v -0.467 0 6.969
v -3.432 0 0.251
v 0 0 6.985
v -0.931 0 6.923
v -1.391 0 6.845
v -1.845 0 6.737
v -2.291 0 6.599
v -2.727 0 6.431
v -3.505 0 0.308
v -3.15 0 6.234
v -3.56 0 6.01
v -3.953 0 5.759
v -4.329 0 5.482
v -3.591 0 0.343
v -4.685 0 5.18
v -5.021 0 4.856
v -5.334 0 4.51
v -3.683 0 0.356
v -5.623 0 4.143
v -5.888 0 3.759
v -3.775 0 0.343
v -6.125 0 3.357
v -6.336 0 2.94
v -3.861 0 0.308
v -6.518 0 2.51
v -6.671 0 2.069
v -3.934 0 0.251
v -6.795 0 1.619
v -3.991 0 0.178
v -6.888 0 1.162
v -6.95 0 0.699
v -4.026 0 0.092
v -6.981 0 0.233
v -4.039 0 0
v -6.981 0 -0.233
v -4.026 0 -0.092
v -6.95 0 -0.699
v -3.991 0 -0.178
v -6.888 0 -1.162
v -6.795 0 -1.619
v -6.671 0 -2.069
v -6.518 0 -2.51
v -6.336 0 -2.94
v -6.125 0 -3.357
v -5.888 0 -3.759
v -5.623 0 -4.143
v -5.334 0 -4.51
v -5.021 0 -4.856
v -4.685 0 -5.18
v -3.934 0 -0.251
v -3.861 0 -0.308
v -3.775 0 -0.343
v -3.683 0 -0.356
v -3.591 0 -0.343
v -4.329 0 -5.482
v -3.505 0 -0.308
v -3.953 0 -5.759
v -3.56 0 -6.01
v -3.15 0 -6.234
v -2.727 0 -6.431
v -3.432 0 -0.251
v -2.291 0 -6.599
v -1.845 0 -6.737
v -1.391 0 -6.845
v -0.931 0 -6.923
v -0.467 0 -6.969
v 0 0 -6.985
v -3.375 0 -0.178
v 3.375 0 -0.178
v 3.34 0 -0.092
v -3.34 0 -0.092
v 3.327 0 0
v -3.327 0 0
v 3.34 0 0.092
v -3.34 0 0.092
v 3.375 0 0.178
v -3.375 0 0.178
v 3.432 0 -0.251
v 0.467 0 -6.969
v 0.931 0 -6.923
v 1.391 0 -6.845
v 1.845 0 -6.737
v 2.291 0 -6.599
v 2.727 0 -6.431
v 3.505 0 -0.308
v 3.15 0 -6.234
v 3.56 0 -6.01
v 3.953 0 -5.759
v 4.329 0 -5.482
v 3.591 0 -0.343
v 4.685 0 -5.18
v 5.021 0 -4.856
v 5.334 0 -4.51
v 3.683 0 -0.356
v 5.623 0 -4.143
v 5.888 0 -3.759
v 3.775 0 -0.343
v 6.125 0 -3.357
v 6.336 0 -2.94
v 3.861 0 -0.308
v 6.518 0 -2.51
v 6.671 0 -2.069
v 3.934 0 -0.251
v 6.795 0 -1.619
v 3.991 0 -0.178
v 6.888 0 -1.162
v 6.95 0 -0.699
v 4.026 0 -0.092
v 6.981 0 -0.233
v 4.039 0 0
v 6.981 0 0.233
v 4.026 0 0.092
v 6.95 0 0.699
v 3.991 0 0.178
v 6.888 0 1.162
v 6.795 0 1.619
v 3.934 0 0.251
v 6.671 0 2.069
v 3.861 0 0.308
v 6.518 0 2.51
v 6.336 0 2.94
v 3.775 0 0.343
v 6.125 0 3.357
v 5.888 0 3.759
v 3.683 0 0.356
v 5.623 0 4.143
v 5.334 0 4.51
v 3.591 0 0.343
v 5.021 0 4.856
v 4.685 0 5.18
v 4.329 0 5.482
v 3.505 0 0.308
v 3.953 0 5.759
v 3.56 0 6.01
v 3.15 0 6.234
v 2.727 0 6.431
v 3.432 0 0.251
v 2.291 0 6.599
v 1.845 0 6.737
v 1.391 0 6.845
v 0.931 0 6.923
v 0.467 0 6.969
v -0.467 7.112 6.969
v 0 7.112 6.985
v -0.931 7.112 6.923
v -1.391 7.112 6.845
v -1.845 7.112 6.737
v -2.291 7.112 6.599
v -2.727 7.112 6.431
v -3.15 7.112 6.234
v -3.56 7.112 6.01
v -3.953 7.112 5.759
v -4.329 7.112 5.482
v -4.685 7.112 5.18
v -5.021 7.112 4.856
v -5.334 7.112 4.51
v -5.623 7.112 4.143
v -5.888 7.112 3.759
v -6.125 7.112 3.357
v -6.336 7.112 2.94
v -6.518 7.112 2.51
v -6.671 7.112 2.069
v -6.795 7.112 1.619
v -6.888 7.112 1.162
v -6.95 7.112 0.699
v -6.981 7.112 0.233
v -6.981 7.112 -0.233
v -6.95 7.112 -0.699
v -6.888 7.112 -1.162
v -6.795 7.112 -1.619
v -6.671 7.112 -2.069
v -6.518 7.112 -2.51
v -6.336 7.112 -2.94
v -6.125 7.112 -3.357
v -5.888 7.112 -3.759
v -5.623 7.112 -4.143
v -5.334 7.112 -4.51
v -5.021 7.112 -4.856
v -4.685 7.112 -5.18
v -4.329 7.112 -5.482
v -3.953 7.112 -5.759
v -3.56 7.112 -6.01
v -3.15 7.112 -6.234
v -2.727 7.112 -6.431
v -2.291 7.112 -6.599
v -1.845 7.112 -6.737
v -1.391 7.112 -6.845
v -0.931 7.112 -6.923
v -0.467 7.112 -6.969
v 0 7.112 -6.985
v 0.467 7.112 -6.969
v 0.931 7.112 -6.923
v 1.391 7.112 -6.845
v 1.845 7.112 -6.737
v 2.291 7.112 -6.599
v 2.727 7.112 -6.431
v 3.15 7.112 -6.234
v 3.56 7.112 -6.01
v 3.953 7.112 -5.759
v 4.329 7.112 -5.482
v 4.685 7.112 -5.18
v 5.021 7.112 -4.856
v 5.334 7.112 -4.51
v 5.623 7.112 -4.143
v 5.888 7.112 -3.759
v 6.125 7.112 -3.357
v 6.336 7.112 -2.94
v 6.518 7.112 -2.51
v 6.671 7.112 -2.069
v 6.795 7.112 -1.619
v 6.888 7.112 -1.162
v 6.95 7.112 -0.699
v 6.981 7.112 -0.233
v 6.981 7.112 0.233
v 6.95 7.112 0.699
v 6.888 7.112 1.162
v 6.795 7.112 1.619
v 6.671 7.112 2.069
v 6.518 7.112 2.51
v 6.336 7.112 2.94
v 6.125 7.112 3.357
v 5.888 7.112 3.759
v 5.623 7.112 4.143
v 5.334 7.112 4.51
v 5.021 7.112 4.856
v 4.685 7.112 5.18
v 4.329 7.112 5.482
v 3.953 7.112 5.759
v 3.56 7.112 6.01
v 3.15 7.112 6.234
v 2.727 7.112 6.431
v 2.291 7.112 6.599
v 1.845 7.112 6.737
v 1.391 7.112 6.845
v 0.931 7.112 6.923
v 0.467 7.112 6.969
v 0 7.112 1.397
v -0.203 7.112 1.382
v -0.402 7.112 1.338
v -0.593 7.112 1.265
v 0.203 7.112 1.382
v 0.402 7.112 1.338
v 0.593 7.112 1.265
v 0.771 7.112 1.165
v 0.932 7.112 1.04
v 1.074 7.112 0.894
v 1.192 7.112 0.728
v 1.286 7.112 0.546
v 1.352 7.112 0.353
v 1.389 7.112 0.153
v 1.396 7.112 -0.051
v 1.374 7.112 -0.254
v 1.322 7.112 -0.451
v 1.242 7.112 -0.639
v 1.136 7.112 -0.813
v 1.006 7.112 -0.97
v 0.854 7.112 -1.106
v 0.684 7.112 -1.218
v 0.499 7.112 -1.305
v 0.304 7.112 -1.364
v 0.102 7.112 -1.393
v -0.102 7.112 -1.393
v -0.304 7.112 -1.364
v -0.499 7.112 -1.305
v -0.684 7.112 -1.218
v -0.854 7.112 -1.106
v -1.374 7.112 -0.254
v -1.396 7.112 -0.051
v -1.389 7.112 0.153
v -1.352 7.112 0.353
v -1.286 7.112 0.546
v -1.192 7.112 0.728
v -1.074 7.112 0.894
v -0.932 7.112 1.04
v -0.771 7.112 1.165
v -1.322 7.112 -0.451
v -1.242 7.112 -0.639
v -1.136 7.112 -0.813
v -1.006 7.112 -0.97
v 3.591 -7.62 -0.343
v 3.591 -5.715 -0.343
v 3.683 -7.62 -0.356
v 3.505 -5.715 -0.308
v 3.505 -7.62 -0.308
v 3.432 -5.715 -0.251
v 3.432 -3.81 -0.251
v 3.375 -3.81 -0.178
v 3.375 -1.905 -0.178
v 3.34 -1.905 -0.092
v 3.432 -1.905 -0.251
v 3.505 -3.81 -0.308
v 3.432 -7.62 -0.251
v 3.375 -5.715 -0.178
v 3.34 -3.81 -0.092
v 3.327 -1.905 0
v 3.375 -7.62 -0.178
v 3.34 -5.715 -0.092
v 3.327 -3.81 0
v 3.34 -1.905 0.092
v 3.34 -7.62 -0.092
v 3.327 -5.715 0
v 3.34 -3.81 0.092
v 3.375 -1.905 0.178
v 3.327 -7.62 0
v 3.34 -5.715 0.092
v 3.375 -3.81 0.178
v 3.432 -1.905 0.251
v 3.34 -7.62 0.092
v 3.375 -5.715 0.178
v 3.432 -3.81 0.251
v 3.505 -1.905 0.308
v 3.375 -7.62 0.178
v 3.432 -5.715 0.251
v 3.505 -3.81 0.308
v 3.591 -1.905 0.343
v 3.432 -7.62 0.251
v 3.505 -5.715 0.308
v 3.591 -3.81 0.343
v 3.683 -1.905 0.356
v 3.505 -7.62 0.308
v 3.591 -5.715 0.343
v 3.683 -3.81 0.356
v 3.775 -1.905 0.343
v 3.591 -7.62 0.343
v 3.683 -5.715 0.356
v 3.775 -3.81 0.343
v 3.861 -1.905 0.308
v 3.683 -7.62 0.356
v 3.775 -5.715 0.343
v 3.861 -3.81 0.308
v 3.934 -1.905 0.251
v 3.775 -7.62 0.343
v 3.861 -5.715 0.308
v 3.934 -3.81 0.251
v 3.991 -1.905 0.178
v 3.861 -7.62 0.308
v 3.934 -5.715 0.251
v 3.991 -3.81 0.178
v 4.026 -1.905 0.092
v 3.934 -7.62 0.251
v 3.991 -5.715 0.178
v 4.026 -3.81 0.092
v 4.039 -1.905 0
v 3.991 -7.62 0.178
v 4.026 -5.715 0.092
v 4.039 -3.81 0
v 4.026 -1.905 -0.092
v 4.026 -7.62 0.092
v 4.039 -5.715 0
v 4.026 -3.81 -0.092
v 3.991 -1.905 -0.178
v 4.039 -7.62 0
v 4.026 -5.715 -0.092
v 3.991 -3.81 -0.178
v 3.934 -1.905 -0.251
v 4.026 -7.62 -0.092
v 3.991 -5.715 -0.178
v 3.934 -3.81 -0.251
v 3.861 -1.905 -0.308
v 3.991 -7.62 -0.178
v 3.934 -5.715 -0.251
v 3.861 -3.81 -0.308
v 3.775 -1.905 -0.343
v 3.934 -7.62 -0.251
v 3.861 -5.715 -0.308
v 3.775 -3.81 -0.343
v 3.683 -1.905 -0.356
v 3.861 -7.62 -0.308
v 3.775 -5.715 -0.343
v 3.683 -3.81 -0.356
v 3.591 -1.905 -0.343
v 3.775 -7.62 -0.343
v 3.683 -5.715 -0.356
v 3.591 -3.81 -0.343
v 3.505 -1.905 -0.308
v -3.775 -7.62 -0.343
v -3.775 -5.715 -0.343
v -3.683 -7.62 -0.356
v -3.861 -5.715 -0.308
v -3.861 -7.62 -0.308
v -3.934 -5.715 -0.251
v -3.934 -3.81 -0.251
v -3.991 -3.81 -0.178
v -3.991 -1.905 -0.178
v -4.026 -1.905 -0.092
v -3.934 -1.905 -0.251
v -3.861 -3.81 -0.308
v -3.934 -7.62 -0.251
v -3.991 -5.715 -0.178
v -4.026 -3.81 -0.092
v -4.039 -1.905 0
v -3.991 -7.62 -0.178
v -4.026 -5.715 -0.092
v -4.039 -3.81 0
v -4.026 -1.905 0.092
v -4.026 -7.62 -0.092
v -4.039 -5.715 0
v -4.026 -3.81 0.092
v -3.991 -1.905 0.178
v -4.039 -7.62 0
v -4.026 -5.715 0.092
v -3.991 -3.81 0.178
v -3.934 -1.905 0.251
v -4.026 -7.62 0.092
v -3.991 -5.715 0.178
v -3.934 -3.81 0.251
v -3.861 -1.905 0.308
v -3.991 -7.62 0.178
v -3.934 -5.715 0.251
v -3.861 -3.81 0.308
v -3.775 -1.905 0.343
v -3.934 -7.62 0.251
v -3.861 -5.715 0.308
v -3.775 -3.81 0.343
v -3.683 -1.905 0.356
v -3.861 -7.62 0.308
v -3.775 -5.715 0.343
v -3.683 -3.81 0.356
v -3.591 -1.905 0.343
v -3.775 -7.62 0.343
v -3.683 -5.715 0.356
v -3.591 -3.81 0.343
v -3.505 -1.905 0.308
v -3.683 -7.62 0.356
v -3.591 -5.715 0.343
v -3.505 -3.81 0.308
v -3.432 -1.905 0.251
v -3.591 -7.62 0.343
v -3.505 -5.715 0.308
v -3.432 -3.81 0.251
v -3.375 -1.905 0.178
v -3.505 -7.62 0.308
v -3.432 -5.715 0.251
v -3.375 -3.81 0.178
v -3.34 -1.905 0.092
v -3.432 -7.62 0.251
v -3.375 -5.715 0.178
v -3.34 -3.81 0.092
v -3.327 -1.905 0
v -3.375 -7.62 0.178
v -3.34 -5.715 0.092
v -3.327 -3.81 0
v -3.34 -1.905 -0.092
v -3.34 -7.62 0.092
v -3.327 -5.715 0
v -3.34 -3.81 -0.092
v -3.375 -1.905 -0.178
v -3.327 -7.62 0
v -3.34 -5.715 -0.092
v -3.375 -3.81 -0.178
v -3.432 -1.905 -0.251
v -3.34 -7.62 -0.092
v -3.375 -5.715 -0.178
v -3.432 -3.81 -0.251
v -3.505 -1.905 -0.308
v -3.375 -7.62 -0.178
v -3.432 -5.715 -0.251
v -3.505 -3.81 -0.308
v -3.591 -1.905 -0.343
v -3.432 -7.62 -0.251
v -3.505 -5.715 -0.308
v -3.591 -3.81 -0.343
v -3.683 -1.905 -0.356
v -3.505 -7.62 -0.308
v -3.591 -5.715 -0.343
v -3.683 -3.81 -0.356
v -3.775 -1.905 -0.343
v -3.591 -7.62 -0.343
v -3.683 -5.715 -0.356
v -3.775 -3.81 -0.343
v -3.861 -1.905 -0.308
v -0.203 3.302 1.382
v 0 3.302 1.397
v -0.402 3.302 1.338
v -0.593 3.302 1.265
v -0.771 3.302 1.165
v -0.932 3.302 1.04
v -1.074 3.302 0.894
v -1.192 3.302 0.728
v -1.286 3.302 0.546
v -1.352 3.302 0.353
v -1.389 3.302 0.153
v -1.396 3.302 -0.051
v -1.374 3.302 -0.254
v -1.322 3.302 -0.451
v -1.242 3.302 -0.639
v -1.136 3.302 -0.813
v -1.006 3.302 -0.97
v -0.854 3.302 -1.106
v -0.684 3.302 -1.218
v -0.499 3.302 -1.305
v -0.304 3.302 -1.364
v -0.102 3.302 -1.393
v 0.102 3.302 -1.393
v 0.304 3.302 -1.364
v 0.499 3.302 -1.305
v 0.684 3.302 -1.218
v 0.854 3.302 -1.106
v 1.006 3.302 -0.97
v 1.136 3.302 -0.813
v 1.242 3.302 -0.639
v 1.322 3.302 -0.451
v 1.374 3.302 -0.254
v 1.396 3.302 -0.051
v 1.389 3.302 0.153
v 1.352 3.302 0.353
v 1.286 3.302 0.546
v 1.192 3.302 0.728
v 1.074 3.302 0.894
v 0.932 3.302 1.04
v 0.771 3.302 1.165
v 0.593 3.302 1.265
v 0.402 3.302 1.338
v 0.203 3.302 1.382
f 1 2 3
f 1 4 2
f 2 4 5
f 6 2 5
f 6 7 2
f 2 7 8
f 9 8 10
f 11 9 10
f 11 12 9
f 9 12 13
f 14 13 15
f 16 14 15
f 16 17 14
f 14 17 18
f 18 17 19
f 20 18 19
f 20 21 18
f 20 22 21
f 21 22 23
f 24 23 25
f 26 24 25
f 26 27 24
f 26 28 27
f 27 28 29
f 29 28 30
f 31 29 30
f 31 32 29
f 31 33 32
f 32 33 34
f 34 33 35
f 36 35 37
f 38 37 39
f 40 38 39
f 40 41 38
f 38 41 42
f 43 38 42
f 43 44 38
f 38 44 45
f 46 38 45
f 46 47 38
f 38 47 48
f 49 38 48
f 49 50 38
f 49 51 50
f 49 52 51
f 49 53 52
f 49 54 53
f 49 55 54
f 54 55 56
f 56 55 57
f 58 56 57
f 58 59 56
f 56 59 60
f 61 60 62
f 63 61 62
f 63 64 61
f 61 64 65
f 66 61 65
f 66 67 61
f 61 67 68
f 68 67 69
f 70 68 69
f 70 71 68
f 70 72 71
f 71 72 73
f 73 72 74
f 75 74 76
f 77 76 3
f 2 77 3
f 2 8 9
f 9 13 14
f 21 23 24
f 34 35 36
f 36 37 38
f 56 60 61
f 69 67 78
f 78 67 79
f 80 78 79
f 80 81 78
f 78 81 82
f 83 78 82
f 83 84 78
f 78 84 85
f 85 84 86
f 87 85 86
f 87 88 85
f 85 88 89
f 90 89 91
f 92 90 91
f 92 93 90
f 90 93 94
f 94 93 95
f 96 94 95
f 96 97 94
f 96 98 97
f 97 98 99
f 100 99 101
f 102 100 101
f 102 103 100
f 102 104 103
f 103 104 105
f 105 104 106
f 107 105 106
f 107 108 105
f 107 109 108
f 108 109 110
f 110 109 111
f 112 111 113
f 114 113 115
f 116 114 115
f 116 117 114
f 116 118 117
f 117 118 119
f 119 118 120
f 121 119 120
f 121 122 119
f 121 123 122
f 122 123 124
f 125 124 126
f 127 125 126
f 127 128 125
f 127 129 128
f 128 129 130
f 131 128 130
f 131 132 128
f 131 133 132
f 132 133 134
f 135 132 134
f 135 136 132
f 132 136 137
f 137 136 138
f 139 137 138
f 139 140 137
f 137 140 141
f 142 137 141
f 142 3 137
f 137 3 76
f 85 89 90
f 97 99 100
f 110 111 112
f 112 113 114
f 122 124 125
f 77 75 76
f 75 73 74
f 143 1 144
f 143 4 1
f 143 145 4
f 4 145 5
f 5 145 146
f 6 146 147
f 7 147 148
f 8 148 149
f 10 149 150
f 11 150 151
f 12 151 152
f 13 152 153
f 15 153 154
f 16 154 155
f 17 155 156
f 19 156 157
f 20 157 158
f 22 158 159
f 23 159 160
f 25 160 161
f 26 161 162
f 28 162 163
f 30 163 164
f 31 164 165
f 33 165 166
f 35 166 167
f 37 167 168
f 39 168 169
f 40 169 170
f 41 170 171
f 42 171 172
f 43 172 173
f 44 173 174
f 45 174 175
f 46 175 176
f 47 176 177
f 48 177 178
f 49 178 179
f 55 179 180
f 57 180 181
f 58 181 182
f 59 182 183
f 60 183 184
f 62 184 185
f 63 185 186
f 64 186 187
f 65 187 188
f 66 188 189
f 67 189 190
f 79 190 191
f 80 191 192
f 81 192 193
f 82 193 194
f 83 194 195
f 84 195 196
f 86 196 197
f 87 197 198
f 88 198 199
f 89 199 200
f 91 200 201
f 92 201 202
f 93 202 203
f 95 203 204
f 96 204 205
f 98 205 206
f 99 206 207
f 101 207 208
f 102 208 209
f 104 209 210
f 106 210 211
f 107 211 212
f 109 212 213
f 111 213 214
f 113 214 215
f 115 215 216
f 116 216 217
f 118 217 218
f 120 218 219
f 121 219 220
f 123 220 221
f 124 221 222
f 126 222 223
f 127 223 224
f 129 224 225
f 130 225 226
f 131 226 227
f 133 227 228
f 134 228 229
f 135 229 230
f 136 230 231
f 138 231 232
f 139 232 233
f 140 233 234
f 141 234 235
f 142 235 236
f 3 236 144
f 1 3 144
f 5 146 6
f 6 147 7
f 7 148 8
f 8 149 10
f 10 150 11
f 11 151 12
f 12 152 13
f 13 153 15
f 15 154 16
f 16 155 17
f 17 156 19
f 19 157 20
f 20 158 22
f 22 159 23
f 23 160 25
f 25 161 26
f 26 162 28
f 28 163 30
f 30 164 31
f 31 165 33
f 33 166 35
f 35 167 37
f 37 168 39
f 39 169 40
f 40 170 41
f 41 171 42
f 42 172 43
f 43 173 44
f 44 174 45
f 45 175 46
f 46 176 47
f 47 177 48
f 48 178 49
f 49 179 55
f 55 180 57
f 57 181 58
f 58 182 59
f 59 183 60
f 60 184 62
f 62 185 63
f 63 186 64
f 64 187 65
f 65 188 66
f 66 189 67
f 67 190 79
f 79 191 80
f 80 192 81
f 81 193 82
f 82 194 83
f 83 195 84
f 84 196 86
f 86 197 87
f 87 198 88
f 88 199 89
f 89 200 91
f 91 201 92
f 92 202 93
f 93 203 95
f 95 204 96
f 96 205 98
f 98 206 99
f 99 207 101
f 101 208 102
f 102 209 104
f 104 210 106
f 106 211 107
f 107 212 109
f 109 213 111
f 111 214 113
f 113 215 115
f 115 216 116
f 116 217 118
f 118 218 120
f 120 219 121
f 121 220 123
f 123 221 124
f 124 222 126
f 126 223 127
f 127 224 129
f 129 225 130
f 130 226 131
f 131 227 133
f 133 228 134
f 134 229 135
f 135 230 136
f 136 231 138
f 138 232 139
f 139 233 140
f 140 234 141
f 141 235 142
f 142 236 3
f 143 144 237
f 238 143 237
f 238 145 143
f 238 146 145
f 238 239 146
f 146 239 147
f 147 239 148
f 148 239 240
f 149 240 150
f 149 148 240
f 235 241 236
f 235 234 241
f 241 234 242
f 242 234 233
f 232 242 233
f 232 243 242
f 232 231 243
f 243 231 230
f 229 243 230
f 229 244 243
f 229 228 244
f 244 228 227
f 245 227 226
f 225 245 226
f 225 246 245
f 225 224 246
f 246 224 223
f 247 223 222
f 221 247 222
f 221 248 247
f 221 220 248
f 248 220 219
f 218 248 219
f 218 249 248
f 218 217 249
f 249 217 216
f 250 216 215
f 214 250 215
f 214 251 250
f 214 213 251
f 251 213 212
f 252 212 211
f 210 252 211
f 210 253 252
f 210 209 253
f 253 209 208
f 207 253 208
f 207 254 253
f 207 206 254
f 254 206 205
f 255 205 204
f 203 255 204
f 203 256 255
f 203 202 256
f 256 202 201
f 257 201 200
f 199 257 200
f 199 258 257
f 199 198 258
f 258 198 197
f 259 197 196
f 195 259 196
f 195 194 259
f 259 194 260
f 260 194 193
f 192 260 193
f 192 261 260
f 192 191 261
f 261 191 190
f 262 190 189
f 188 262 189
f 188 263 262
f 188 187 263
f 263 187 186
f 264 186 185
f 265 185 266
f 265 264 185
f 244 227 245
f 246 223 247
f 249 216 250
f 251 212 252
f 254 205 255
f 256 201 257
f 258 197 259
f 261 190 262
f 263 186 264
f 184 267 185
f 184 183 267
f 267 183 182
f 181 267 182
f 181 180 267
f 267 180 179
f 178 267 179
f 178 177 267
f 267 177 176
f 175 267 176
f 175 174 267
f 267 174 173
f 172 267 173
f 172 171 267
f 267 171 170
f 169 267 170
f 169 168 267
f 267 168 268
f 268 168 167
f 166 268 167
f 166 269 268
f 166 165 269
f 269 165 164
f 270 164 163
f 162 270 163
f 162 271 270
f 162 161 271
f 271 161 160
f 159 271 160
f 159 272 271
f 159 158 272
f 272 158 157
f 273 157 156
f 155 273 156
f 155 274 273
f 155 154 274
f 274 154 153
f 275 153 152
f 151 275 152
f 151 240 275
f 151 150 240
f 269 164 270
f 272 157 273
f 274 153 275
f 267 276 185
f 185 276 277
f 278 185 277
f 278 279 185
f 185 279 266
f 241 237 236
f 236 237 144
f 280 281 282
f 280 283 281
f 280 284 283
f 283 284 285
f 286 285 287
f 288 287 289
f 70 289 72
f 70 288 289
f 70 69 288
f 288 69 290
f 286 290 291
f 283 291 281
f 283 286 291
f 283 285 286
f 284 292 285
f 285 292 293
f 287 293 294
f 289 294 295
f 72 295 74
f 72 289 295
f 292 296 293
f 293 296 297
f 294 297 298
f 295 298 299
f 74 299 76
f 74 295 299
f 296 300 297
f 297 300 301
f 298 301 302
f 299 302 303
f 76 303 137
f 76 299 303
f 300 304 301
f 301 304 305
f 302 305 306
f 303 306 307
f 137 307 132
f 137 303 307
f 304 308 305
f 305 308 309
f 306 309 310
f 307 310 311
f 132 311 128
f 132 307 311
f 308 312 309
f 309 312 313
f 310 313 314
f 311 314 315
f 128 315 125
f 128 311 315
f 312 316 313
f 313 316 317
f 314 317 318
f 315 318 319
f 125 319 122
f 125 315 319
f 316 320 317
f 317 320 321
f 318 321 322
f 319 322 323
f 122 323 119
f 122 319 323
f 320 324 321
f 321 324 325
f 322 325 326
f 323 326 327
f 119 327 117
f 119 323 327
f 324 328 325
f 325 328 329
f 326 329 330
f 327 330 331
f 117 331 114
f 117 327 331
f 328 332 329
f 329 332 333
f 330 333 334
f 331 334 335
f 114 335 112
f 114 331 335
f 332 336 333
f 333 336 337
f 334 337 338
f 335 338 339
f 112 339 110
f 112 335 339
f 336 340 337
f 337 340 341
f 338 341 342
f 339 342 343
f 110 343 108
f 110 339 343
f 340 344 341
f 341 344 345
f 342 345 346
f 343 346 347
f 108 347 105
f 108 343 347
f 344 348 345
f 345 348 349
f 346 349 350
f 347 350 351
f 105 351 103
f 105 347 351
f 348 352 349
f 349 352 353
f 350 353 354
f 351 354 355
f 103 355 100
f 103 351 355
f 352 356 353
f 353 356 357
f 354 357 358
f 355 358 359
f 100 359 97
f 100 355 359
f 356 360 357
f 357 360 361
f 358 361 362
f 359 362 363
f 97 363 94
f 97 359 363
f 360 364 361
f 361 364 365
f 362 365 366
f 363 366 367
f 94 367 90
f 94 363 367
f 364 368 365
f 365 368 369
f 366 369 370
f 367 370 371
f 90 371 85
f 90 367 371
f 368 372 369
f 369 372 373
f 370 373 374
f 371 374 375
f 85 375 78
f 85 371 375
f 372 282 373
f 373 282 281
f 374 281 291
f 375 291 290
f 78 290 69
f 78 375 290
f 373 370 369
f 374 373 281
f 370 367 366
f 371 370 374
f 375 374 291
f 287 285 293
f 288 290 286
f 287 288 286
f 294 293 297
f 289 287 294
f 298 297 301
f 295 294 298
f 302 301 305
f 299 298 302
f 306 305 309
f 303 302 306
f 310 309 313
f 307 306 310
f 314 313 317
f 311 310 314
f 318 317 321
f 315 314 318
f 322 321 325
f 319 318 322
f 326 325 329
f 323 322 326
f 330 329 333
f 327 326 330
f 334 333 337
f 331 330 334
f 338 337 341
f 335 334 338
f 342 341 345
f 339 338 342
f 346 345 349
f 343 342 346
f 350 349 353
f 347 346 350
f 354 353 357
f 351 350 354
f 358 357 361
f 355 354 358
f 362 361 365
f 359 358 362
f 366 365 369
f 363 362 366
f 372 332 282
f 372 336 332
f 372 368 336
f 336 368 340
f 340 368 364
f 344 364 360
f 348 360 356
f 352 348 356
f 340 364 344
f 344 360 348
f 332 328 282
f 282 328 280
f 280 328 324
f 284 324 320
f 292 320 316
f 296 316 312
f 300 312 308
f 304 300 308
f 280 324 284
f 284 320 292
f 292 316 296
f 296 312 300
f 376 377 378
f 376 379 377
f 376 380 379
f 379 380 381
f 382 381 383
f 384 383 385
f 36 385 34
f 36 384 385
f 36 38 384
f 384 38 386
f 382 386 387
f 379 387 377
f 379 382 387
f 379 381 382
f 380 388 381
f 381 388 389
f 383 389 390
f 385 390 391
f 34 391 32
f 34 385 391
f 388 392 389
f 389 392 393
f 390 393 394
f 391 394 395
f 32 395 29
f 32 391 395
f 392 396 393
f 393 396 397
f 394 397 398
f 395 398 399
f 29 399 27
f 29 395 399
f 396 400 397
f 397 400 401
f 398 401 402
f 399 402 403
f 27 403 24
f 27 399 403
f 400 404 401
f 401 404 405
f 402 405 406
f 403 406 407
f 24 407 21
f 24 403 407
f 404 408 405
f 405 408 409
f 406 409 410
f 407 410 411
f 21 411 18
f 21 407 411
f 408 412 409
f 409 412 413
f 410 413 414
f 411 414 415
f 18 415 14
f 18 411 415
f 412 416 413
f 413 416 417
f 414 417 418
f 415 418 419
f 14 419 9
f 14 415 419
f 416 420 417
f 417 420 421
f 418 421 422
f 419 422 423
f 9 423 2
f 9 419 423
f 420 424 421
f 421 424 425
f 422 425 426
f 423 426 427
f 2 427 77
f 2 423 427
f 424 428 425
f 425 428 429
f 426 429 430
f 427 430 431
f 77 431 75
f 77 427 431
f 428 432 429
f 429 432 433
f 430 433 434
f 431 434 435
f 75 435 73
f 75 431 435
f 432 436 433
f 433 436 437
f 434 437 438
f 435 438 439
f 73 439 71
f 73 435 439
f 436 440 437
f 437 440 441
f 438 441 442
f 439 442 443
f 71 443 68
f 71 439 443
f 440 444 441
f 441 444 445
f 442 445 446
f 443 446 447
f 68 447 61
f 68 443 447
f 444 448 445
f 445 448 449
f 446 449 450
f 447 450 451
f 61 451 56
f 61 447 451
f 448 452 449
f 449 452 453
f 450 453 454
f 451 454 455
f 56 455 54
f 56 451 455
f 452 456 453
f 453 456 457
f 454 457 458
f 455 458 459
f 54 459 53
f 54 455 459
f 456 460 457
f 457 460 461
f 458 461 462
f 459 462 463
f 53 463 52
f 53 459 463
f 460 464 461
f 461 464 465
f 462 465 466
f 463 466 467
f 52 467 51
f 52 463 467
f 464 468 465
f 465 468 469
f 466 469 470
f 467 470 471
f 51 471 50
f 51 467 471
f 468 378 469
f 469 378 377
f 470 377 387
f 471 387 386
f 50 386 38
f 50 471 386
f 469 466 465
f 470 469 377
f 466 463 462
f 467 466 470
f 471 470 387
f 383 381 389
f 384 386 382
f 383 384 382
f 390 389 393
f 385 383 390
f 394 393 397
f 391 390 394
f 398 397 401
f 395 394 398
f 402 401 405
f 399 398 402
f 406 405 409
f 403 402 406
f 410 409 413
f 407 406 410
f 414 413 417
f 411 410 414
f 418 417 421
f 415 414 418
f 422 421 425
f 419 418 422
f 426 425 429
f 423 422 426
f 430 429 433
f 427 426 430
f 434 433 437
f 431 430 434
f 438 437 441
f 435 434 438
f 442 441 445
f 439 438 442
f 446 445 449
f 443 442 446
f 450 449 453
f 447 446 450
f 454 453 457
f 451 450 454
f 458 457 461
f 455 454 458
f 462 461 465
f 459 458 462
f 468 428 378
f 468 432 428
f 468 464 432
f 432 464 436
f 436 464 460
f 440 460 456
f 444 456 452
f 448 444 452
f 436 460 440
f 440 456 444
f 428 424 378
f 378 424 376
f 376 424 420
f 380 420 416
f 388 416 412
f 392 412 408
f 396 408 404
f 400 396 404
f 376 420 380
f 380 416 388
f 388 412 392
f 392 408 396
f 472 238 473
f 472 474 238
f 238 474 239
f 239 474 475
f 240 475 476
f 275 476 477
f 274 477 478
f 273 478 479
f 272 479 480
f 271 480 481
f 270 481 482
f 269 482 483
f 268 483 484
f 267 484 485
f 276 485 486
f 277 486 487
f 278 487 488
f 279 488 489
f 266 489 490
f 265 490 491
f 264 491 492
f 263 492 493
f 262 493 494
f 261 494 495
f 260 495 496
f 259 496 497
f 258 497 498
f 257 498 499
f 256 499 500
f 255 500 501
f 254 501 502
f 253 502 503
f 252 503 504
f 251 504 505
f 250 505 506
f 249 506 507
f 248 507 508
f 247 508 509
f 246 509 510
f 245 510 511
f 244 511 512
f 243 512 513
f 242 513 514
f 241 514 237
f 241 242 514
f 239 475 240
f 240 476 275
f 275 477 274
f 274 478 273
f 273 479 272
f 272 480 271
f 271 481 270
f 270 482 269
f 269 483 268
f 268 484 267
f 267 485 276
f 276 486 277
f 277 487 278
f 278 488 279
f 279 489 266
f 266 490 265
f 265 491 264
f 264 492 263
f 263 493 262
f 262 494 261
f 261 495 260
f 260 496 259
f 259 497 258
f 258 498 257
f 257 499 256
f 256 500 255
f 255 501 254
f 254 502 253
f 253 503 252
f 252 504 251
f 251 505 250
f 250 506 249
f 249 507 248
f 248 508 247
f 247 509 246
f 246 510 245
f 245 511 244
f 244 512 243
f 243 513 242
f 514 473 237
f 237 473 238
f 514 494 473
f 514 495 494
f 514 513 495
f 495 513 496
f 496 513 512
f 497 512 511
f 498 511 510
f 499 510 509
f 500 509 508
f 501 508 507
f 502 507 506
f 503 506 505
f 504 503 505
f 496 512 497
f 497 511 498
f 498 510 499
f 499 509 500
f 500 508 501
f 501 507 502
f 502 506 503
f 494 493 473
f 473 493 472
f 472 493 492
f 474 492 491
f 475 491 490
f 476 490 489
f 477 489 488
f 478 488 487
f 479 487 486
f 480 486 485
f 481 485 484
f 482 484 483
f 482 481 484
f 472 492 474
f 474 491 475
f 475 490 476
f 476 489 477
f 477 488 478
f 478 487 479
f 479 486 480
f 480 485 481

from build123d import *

# Parameters (mm, degrees)
SKETCH2_R      = 6.985
EXTRUDE1_DEPTH = 7.112
SKETCH3_R      = 0.3556
EXTRUDE2_DEPTH = 7.62
SKETCH4_R      = 1.397
EXTRUDE3_DEPTH = 3.81


with BuildPart() as part:
    # Sketch2 → Extrude1 (new body)
    with BuildSketch(Plane(origin=(0, 0, 0), x_dir=(1, 0, 0), z_dir=(0, 1, 0))):
        with Locations(Location((0, 0, 0), (0, 0, 270))):
            Circle(SKETCH2_R)
    extrude(amount=EXTRUDE1_DEPTH)

    # Sketch3 → Extrude2 (add)
    with BuildSketch(Plane.XZ):
        with Locations(Location((3.683, 0, 0), (0, 0, 90))):
            Circle(SKETCH3_R)
        with Locations(Location((-3.683, 0, 0), (0, 0, 90))):
            Circle(SKETCH3_R)
    extrude(amount=EXTRUDE2_DEPTH)

    # Sketch4 → Extrude3 (cut)
    with BuildSketch(Plane(origin=(0, 7.112, 0), x_dir=(1, 0, 0), z_dir=(0, 1, 0))):
        with Locations(Location((0, 0, 0), (0, 0, 270))):
            Circle(SKETCH4_R)
    extrude(amount=-EXTRUDE3_DEPTH, mode=Mode.SUBTRACT)


solid = part.part
